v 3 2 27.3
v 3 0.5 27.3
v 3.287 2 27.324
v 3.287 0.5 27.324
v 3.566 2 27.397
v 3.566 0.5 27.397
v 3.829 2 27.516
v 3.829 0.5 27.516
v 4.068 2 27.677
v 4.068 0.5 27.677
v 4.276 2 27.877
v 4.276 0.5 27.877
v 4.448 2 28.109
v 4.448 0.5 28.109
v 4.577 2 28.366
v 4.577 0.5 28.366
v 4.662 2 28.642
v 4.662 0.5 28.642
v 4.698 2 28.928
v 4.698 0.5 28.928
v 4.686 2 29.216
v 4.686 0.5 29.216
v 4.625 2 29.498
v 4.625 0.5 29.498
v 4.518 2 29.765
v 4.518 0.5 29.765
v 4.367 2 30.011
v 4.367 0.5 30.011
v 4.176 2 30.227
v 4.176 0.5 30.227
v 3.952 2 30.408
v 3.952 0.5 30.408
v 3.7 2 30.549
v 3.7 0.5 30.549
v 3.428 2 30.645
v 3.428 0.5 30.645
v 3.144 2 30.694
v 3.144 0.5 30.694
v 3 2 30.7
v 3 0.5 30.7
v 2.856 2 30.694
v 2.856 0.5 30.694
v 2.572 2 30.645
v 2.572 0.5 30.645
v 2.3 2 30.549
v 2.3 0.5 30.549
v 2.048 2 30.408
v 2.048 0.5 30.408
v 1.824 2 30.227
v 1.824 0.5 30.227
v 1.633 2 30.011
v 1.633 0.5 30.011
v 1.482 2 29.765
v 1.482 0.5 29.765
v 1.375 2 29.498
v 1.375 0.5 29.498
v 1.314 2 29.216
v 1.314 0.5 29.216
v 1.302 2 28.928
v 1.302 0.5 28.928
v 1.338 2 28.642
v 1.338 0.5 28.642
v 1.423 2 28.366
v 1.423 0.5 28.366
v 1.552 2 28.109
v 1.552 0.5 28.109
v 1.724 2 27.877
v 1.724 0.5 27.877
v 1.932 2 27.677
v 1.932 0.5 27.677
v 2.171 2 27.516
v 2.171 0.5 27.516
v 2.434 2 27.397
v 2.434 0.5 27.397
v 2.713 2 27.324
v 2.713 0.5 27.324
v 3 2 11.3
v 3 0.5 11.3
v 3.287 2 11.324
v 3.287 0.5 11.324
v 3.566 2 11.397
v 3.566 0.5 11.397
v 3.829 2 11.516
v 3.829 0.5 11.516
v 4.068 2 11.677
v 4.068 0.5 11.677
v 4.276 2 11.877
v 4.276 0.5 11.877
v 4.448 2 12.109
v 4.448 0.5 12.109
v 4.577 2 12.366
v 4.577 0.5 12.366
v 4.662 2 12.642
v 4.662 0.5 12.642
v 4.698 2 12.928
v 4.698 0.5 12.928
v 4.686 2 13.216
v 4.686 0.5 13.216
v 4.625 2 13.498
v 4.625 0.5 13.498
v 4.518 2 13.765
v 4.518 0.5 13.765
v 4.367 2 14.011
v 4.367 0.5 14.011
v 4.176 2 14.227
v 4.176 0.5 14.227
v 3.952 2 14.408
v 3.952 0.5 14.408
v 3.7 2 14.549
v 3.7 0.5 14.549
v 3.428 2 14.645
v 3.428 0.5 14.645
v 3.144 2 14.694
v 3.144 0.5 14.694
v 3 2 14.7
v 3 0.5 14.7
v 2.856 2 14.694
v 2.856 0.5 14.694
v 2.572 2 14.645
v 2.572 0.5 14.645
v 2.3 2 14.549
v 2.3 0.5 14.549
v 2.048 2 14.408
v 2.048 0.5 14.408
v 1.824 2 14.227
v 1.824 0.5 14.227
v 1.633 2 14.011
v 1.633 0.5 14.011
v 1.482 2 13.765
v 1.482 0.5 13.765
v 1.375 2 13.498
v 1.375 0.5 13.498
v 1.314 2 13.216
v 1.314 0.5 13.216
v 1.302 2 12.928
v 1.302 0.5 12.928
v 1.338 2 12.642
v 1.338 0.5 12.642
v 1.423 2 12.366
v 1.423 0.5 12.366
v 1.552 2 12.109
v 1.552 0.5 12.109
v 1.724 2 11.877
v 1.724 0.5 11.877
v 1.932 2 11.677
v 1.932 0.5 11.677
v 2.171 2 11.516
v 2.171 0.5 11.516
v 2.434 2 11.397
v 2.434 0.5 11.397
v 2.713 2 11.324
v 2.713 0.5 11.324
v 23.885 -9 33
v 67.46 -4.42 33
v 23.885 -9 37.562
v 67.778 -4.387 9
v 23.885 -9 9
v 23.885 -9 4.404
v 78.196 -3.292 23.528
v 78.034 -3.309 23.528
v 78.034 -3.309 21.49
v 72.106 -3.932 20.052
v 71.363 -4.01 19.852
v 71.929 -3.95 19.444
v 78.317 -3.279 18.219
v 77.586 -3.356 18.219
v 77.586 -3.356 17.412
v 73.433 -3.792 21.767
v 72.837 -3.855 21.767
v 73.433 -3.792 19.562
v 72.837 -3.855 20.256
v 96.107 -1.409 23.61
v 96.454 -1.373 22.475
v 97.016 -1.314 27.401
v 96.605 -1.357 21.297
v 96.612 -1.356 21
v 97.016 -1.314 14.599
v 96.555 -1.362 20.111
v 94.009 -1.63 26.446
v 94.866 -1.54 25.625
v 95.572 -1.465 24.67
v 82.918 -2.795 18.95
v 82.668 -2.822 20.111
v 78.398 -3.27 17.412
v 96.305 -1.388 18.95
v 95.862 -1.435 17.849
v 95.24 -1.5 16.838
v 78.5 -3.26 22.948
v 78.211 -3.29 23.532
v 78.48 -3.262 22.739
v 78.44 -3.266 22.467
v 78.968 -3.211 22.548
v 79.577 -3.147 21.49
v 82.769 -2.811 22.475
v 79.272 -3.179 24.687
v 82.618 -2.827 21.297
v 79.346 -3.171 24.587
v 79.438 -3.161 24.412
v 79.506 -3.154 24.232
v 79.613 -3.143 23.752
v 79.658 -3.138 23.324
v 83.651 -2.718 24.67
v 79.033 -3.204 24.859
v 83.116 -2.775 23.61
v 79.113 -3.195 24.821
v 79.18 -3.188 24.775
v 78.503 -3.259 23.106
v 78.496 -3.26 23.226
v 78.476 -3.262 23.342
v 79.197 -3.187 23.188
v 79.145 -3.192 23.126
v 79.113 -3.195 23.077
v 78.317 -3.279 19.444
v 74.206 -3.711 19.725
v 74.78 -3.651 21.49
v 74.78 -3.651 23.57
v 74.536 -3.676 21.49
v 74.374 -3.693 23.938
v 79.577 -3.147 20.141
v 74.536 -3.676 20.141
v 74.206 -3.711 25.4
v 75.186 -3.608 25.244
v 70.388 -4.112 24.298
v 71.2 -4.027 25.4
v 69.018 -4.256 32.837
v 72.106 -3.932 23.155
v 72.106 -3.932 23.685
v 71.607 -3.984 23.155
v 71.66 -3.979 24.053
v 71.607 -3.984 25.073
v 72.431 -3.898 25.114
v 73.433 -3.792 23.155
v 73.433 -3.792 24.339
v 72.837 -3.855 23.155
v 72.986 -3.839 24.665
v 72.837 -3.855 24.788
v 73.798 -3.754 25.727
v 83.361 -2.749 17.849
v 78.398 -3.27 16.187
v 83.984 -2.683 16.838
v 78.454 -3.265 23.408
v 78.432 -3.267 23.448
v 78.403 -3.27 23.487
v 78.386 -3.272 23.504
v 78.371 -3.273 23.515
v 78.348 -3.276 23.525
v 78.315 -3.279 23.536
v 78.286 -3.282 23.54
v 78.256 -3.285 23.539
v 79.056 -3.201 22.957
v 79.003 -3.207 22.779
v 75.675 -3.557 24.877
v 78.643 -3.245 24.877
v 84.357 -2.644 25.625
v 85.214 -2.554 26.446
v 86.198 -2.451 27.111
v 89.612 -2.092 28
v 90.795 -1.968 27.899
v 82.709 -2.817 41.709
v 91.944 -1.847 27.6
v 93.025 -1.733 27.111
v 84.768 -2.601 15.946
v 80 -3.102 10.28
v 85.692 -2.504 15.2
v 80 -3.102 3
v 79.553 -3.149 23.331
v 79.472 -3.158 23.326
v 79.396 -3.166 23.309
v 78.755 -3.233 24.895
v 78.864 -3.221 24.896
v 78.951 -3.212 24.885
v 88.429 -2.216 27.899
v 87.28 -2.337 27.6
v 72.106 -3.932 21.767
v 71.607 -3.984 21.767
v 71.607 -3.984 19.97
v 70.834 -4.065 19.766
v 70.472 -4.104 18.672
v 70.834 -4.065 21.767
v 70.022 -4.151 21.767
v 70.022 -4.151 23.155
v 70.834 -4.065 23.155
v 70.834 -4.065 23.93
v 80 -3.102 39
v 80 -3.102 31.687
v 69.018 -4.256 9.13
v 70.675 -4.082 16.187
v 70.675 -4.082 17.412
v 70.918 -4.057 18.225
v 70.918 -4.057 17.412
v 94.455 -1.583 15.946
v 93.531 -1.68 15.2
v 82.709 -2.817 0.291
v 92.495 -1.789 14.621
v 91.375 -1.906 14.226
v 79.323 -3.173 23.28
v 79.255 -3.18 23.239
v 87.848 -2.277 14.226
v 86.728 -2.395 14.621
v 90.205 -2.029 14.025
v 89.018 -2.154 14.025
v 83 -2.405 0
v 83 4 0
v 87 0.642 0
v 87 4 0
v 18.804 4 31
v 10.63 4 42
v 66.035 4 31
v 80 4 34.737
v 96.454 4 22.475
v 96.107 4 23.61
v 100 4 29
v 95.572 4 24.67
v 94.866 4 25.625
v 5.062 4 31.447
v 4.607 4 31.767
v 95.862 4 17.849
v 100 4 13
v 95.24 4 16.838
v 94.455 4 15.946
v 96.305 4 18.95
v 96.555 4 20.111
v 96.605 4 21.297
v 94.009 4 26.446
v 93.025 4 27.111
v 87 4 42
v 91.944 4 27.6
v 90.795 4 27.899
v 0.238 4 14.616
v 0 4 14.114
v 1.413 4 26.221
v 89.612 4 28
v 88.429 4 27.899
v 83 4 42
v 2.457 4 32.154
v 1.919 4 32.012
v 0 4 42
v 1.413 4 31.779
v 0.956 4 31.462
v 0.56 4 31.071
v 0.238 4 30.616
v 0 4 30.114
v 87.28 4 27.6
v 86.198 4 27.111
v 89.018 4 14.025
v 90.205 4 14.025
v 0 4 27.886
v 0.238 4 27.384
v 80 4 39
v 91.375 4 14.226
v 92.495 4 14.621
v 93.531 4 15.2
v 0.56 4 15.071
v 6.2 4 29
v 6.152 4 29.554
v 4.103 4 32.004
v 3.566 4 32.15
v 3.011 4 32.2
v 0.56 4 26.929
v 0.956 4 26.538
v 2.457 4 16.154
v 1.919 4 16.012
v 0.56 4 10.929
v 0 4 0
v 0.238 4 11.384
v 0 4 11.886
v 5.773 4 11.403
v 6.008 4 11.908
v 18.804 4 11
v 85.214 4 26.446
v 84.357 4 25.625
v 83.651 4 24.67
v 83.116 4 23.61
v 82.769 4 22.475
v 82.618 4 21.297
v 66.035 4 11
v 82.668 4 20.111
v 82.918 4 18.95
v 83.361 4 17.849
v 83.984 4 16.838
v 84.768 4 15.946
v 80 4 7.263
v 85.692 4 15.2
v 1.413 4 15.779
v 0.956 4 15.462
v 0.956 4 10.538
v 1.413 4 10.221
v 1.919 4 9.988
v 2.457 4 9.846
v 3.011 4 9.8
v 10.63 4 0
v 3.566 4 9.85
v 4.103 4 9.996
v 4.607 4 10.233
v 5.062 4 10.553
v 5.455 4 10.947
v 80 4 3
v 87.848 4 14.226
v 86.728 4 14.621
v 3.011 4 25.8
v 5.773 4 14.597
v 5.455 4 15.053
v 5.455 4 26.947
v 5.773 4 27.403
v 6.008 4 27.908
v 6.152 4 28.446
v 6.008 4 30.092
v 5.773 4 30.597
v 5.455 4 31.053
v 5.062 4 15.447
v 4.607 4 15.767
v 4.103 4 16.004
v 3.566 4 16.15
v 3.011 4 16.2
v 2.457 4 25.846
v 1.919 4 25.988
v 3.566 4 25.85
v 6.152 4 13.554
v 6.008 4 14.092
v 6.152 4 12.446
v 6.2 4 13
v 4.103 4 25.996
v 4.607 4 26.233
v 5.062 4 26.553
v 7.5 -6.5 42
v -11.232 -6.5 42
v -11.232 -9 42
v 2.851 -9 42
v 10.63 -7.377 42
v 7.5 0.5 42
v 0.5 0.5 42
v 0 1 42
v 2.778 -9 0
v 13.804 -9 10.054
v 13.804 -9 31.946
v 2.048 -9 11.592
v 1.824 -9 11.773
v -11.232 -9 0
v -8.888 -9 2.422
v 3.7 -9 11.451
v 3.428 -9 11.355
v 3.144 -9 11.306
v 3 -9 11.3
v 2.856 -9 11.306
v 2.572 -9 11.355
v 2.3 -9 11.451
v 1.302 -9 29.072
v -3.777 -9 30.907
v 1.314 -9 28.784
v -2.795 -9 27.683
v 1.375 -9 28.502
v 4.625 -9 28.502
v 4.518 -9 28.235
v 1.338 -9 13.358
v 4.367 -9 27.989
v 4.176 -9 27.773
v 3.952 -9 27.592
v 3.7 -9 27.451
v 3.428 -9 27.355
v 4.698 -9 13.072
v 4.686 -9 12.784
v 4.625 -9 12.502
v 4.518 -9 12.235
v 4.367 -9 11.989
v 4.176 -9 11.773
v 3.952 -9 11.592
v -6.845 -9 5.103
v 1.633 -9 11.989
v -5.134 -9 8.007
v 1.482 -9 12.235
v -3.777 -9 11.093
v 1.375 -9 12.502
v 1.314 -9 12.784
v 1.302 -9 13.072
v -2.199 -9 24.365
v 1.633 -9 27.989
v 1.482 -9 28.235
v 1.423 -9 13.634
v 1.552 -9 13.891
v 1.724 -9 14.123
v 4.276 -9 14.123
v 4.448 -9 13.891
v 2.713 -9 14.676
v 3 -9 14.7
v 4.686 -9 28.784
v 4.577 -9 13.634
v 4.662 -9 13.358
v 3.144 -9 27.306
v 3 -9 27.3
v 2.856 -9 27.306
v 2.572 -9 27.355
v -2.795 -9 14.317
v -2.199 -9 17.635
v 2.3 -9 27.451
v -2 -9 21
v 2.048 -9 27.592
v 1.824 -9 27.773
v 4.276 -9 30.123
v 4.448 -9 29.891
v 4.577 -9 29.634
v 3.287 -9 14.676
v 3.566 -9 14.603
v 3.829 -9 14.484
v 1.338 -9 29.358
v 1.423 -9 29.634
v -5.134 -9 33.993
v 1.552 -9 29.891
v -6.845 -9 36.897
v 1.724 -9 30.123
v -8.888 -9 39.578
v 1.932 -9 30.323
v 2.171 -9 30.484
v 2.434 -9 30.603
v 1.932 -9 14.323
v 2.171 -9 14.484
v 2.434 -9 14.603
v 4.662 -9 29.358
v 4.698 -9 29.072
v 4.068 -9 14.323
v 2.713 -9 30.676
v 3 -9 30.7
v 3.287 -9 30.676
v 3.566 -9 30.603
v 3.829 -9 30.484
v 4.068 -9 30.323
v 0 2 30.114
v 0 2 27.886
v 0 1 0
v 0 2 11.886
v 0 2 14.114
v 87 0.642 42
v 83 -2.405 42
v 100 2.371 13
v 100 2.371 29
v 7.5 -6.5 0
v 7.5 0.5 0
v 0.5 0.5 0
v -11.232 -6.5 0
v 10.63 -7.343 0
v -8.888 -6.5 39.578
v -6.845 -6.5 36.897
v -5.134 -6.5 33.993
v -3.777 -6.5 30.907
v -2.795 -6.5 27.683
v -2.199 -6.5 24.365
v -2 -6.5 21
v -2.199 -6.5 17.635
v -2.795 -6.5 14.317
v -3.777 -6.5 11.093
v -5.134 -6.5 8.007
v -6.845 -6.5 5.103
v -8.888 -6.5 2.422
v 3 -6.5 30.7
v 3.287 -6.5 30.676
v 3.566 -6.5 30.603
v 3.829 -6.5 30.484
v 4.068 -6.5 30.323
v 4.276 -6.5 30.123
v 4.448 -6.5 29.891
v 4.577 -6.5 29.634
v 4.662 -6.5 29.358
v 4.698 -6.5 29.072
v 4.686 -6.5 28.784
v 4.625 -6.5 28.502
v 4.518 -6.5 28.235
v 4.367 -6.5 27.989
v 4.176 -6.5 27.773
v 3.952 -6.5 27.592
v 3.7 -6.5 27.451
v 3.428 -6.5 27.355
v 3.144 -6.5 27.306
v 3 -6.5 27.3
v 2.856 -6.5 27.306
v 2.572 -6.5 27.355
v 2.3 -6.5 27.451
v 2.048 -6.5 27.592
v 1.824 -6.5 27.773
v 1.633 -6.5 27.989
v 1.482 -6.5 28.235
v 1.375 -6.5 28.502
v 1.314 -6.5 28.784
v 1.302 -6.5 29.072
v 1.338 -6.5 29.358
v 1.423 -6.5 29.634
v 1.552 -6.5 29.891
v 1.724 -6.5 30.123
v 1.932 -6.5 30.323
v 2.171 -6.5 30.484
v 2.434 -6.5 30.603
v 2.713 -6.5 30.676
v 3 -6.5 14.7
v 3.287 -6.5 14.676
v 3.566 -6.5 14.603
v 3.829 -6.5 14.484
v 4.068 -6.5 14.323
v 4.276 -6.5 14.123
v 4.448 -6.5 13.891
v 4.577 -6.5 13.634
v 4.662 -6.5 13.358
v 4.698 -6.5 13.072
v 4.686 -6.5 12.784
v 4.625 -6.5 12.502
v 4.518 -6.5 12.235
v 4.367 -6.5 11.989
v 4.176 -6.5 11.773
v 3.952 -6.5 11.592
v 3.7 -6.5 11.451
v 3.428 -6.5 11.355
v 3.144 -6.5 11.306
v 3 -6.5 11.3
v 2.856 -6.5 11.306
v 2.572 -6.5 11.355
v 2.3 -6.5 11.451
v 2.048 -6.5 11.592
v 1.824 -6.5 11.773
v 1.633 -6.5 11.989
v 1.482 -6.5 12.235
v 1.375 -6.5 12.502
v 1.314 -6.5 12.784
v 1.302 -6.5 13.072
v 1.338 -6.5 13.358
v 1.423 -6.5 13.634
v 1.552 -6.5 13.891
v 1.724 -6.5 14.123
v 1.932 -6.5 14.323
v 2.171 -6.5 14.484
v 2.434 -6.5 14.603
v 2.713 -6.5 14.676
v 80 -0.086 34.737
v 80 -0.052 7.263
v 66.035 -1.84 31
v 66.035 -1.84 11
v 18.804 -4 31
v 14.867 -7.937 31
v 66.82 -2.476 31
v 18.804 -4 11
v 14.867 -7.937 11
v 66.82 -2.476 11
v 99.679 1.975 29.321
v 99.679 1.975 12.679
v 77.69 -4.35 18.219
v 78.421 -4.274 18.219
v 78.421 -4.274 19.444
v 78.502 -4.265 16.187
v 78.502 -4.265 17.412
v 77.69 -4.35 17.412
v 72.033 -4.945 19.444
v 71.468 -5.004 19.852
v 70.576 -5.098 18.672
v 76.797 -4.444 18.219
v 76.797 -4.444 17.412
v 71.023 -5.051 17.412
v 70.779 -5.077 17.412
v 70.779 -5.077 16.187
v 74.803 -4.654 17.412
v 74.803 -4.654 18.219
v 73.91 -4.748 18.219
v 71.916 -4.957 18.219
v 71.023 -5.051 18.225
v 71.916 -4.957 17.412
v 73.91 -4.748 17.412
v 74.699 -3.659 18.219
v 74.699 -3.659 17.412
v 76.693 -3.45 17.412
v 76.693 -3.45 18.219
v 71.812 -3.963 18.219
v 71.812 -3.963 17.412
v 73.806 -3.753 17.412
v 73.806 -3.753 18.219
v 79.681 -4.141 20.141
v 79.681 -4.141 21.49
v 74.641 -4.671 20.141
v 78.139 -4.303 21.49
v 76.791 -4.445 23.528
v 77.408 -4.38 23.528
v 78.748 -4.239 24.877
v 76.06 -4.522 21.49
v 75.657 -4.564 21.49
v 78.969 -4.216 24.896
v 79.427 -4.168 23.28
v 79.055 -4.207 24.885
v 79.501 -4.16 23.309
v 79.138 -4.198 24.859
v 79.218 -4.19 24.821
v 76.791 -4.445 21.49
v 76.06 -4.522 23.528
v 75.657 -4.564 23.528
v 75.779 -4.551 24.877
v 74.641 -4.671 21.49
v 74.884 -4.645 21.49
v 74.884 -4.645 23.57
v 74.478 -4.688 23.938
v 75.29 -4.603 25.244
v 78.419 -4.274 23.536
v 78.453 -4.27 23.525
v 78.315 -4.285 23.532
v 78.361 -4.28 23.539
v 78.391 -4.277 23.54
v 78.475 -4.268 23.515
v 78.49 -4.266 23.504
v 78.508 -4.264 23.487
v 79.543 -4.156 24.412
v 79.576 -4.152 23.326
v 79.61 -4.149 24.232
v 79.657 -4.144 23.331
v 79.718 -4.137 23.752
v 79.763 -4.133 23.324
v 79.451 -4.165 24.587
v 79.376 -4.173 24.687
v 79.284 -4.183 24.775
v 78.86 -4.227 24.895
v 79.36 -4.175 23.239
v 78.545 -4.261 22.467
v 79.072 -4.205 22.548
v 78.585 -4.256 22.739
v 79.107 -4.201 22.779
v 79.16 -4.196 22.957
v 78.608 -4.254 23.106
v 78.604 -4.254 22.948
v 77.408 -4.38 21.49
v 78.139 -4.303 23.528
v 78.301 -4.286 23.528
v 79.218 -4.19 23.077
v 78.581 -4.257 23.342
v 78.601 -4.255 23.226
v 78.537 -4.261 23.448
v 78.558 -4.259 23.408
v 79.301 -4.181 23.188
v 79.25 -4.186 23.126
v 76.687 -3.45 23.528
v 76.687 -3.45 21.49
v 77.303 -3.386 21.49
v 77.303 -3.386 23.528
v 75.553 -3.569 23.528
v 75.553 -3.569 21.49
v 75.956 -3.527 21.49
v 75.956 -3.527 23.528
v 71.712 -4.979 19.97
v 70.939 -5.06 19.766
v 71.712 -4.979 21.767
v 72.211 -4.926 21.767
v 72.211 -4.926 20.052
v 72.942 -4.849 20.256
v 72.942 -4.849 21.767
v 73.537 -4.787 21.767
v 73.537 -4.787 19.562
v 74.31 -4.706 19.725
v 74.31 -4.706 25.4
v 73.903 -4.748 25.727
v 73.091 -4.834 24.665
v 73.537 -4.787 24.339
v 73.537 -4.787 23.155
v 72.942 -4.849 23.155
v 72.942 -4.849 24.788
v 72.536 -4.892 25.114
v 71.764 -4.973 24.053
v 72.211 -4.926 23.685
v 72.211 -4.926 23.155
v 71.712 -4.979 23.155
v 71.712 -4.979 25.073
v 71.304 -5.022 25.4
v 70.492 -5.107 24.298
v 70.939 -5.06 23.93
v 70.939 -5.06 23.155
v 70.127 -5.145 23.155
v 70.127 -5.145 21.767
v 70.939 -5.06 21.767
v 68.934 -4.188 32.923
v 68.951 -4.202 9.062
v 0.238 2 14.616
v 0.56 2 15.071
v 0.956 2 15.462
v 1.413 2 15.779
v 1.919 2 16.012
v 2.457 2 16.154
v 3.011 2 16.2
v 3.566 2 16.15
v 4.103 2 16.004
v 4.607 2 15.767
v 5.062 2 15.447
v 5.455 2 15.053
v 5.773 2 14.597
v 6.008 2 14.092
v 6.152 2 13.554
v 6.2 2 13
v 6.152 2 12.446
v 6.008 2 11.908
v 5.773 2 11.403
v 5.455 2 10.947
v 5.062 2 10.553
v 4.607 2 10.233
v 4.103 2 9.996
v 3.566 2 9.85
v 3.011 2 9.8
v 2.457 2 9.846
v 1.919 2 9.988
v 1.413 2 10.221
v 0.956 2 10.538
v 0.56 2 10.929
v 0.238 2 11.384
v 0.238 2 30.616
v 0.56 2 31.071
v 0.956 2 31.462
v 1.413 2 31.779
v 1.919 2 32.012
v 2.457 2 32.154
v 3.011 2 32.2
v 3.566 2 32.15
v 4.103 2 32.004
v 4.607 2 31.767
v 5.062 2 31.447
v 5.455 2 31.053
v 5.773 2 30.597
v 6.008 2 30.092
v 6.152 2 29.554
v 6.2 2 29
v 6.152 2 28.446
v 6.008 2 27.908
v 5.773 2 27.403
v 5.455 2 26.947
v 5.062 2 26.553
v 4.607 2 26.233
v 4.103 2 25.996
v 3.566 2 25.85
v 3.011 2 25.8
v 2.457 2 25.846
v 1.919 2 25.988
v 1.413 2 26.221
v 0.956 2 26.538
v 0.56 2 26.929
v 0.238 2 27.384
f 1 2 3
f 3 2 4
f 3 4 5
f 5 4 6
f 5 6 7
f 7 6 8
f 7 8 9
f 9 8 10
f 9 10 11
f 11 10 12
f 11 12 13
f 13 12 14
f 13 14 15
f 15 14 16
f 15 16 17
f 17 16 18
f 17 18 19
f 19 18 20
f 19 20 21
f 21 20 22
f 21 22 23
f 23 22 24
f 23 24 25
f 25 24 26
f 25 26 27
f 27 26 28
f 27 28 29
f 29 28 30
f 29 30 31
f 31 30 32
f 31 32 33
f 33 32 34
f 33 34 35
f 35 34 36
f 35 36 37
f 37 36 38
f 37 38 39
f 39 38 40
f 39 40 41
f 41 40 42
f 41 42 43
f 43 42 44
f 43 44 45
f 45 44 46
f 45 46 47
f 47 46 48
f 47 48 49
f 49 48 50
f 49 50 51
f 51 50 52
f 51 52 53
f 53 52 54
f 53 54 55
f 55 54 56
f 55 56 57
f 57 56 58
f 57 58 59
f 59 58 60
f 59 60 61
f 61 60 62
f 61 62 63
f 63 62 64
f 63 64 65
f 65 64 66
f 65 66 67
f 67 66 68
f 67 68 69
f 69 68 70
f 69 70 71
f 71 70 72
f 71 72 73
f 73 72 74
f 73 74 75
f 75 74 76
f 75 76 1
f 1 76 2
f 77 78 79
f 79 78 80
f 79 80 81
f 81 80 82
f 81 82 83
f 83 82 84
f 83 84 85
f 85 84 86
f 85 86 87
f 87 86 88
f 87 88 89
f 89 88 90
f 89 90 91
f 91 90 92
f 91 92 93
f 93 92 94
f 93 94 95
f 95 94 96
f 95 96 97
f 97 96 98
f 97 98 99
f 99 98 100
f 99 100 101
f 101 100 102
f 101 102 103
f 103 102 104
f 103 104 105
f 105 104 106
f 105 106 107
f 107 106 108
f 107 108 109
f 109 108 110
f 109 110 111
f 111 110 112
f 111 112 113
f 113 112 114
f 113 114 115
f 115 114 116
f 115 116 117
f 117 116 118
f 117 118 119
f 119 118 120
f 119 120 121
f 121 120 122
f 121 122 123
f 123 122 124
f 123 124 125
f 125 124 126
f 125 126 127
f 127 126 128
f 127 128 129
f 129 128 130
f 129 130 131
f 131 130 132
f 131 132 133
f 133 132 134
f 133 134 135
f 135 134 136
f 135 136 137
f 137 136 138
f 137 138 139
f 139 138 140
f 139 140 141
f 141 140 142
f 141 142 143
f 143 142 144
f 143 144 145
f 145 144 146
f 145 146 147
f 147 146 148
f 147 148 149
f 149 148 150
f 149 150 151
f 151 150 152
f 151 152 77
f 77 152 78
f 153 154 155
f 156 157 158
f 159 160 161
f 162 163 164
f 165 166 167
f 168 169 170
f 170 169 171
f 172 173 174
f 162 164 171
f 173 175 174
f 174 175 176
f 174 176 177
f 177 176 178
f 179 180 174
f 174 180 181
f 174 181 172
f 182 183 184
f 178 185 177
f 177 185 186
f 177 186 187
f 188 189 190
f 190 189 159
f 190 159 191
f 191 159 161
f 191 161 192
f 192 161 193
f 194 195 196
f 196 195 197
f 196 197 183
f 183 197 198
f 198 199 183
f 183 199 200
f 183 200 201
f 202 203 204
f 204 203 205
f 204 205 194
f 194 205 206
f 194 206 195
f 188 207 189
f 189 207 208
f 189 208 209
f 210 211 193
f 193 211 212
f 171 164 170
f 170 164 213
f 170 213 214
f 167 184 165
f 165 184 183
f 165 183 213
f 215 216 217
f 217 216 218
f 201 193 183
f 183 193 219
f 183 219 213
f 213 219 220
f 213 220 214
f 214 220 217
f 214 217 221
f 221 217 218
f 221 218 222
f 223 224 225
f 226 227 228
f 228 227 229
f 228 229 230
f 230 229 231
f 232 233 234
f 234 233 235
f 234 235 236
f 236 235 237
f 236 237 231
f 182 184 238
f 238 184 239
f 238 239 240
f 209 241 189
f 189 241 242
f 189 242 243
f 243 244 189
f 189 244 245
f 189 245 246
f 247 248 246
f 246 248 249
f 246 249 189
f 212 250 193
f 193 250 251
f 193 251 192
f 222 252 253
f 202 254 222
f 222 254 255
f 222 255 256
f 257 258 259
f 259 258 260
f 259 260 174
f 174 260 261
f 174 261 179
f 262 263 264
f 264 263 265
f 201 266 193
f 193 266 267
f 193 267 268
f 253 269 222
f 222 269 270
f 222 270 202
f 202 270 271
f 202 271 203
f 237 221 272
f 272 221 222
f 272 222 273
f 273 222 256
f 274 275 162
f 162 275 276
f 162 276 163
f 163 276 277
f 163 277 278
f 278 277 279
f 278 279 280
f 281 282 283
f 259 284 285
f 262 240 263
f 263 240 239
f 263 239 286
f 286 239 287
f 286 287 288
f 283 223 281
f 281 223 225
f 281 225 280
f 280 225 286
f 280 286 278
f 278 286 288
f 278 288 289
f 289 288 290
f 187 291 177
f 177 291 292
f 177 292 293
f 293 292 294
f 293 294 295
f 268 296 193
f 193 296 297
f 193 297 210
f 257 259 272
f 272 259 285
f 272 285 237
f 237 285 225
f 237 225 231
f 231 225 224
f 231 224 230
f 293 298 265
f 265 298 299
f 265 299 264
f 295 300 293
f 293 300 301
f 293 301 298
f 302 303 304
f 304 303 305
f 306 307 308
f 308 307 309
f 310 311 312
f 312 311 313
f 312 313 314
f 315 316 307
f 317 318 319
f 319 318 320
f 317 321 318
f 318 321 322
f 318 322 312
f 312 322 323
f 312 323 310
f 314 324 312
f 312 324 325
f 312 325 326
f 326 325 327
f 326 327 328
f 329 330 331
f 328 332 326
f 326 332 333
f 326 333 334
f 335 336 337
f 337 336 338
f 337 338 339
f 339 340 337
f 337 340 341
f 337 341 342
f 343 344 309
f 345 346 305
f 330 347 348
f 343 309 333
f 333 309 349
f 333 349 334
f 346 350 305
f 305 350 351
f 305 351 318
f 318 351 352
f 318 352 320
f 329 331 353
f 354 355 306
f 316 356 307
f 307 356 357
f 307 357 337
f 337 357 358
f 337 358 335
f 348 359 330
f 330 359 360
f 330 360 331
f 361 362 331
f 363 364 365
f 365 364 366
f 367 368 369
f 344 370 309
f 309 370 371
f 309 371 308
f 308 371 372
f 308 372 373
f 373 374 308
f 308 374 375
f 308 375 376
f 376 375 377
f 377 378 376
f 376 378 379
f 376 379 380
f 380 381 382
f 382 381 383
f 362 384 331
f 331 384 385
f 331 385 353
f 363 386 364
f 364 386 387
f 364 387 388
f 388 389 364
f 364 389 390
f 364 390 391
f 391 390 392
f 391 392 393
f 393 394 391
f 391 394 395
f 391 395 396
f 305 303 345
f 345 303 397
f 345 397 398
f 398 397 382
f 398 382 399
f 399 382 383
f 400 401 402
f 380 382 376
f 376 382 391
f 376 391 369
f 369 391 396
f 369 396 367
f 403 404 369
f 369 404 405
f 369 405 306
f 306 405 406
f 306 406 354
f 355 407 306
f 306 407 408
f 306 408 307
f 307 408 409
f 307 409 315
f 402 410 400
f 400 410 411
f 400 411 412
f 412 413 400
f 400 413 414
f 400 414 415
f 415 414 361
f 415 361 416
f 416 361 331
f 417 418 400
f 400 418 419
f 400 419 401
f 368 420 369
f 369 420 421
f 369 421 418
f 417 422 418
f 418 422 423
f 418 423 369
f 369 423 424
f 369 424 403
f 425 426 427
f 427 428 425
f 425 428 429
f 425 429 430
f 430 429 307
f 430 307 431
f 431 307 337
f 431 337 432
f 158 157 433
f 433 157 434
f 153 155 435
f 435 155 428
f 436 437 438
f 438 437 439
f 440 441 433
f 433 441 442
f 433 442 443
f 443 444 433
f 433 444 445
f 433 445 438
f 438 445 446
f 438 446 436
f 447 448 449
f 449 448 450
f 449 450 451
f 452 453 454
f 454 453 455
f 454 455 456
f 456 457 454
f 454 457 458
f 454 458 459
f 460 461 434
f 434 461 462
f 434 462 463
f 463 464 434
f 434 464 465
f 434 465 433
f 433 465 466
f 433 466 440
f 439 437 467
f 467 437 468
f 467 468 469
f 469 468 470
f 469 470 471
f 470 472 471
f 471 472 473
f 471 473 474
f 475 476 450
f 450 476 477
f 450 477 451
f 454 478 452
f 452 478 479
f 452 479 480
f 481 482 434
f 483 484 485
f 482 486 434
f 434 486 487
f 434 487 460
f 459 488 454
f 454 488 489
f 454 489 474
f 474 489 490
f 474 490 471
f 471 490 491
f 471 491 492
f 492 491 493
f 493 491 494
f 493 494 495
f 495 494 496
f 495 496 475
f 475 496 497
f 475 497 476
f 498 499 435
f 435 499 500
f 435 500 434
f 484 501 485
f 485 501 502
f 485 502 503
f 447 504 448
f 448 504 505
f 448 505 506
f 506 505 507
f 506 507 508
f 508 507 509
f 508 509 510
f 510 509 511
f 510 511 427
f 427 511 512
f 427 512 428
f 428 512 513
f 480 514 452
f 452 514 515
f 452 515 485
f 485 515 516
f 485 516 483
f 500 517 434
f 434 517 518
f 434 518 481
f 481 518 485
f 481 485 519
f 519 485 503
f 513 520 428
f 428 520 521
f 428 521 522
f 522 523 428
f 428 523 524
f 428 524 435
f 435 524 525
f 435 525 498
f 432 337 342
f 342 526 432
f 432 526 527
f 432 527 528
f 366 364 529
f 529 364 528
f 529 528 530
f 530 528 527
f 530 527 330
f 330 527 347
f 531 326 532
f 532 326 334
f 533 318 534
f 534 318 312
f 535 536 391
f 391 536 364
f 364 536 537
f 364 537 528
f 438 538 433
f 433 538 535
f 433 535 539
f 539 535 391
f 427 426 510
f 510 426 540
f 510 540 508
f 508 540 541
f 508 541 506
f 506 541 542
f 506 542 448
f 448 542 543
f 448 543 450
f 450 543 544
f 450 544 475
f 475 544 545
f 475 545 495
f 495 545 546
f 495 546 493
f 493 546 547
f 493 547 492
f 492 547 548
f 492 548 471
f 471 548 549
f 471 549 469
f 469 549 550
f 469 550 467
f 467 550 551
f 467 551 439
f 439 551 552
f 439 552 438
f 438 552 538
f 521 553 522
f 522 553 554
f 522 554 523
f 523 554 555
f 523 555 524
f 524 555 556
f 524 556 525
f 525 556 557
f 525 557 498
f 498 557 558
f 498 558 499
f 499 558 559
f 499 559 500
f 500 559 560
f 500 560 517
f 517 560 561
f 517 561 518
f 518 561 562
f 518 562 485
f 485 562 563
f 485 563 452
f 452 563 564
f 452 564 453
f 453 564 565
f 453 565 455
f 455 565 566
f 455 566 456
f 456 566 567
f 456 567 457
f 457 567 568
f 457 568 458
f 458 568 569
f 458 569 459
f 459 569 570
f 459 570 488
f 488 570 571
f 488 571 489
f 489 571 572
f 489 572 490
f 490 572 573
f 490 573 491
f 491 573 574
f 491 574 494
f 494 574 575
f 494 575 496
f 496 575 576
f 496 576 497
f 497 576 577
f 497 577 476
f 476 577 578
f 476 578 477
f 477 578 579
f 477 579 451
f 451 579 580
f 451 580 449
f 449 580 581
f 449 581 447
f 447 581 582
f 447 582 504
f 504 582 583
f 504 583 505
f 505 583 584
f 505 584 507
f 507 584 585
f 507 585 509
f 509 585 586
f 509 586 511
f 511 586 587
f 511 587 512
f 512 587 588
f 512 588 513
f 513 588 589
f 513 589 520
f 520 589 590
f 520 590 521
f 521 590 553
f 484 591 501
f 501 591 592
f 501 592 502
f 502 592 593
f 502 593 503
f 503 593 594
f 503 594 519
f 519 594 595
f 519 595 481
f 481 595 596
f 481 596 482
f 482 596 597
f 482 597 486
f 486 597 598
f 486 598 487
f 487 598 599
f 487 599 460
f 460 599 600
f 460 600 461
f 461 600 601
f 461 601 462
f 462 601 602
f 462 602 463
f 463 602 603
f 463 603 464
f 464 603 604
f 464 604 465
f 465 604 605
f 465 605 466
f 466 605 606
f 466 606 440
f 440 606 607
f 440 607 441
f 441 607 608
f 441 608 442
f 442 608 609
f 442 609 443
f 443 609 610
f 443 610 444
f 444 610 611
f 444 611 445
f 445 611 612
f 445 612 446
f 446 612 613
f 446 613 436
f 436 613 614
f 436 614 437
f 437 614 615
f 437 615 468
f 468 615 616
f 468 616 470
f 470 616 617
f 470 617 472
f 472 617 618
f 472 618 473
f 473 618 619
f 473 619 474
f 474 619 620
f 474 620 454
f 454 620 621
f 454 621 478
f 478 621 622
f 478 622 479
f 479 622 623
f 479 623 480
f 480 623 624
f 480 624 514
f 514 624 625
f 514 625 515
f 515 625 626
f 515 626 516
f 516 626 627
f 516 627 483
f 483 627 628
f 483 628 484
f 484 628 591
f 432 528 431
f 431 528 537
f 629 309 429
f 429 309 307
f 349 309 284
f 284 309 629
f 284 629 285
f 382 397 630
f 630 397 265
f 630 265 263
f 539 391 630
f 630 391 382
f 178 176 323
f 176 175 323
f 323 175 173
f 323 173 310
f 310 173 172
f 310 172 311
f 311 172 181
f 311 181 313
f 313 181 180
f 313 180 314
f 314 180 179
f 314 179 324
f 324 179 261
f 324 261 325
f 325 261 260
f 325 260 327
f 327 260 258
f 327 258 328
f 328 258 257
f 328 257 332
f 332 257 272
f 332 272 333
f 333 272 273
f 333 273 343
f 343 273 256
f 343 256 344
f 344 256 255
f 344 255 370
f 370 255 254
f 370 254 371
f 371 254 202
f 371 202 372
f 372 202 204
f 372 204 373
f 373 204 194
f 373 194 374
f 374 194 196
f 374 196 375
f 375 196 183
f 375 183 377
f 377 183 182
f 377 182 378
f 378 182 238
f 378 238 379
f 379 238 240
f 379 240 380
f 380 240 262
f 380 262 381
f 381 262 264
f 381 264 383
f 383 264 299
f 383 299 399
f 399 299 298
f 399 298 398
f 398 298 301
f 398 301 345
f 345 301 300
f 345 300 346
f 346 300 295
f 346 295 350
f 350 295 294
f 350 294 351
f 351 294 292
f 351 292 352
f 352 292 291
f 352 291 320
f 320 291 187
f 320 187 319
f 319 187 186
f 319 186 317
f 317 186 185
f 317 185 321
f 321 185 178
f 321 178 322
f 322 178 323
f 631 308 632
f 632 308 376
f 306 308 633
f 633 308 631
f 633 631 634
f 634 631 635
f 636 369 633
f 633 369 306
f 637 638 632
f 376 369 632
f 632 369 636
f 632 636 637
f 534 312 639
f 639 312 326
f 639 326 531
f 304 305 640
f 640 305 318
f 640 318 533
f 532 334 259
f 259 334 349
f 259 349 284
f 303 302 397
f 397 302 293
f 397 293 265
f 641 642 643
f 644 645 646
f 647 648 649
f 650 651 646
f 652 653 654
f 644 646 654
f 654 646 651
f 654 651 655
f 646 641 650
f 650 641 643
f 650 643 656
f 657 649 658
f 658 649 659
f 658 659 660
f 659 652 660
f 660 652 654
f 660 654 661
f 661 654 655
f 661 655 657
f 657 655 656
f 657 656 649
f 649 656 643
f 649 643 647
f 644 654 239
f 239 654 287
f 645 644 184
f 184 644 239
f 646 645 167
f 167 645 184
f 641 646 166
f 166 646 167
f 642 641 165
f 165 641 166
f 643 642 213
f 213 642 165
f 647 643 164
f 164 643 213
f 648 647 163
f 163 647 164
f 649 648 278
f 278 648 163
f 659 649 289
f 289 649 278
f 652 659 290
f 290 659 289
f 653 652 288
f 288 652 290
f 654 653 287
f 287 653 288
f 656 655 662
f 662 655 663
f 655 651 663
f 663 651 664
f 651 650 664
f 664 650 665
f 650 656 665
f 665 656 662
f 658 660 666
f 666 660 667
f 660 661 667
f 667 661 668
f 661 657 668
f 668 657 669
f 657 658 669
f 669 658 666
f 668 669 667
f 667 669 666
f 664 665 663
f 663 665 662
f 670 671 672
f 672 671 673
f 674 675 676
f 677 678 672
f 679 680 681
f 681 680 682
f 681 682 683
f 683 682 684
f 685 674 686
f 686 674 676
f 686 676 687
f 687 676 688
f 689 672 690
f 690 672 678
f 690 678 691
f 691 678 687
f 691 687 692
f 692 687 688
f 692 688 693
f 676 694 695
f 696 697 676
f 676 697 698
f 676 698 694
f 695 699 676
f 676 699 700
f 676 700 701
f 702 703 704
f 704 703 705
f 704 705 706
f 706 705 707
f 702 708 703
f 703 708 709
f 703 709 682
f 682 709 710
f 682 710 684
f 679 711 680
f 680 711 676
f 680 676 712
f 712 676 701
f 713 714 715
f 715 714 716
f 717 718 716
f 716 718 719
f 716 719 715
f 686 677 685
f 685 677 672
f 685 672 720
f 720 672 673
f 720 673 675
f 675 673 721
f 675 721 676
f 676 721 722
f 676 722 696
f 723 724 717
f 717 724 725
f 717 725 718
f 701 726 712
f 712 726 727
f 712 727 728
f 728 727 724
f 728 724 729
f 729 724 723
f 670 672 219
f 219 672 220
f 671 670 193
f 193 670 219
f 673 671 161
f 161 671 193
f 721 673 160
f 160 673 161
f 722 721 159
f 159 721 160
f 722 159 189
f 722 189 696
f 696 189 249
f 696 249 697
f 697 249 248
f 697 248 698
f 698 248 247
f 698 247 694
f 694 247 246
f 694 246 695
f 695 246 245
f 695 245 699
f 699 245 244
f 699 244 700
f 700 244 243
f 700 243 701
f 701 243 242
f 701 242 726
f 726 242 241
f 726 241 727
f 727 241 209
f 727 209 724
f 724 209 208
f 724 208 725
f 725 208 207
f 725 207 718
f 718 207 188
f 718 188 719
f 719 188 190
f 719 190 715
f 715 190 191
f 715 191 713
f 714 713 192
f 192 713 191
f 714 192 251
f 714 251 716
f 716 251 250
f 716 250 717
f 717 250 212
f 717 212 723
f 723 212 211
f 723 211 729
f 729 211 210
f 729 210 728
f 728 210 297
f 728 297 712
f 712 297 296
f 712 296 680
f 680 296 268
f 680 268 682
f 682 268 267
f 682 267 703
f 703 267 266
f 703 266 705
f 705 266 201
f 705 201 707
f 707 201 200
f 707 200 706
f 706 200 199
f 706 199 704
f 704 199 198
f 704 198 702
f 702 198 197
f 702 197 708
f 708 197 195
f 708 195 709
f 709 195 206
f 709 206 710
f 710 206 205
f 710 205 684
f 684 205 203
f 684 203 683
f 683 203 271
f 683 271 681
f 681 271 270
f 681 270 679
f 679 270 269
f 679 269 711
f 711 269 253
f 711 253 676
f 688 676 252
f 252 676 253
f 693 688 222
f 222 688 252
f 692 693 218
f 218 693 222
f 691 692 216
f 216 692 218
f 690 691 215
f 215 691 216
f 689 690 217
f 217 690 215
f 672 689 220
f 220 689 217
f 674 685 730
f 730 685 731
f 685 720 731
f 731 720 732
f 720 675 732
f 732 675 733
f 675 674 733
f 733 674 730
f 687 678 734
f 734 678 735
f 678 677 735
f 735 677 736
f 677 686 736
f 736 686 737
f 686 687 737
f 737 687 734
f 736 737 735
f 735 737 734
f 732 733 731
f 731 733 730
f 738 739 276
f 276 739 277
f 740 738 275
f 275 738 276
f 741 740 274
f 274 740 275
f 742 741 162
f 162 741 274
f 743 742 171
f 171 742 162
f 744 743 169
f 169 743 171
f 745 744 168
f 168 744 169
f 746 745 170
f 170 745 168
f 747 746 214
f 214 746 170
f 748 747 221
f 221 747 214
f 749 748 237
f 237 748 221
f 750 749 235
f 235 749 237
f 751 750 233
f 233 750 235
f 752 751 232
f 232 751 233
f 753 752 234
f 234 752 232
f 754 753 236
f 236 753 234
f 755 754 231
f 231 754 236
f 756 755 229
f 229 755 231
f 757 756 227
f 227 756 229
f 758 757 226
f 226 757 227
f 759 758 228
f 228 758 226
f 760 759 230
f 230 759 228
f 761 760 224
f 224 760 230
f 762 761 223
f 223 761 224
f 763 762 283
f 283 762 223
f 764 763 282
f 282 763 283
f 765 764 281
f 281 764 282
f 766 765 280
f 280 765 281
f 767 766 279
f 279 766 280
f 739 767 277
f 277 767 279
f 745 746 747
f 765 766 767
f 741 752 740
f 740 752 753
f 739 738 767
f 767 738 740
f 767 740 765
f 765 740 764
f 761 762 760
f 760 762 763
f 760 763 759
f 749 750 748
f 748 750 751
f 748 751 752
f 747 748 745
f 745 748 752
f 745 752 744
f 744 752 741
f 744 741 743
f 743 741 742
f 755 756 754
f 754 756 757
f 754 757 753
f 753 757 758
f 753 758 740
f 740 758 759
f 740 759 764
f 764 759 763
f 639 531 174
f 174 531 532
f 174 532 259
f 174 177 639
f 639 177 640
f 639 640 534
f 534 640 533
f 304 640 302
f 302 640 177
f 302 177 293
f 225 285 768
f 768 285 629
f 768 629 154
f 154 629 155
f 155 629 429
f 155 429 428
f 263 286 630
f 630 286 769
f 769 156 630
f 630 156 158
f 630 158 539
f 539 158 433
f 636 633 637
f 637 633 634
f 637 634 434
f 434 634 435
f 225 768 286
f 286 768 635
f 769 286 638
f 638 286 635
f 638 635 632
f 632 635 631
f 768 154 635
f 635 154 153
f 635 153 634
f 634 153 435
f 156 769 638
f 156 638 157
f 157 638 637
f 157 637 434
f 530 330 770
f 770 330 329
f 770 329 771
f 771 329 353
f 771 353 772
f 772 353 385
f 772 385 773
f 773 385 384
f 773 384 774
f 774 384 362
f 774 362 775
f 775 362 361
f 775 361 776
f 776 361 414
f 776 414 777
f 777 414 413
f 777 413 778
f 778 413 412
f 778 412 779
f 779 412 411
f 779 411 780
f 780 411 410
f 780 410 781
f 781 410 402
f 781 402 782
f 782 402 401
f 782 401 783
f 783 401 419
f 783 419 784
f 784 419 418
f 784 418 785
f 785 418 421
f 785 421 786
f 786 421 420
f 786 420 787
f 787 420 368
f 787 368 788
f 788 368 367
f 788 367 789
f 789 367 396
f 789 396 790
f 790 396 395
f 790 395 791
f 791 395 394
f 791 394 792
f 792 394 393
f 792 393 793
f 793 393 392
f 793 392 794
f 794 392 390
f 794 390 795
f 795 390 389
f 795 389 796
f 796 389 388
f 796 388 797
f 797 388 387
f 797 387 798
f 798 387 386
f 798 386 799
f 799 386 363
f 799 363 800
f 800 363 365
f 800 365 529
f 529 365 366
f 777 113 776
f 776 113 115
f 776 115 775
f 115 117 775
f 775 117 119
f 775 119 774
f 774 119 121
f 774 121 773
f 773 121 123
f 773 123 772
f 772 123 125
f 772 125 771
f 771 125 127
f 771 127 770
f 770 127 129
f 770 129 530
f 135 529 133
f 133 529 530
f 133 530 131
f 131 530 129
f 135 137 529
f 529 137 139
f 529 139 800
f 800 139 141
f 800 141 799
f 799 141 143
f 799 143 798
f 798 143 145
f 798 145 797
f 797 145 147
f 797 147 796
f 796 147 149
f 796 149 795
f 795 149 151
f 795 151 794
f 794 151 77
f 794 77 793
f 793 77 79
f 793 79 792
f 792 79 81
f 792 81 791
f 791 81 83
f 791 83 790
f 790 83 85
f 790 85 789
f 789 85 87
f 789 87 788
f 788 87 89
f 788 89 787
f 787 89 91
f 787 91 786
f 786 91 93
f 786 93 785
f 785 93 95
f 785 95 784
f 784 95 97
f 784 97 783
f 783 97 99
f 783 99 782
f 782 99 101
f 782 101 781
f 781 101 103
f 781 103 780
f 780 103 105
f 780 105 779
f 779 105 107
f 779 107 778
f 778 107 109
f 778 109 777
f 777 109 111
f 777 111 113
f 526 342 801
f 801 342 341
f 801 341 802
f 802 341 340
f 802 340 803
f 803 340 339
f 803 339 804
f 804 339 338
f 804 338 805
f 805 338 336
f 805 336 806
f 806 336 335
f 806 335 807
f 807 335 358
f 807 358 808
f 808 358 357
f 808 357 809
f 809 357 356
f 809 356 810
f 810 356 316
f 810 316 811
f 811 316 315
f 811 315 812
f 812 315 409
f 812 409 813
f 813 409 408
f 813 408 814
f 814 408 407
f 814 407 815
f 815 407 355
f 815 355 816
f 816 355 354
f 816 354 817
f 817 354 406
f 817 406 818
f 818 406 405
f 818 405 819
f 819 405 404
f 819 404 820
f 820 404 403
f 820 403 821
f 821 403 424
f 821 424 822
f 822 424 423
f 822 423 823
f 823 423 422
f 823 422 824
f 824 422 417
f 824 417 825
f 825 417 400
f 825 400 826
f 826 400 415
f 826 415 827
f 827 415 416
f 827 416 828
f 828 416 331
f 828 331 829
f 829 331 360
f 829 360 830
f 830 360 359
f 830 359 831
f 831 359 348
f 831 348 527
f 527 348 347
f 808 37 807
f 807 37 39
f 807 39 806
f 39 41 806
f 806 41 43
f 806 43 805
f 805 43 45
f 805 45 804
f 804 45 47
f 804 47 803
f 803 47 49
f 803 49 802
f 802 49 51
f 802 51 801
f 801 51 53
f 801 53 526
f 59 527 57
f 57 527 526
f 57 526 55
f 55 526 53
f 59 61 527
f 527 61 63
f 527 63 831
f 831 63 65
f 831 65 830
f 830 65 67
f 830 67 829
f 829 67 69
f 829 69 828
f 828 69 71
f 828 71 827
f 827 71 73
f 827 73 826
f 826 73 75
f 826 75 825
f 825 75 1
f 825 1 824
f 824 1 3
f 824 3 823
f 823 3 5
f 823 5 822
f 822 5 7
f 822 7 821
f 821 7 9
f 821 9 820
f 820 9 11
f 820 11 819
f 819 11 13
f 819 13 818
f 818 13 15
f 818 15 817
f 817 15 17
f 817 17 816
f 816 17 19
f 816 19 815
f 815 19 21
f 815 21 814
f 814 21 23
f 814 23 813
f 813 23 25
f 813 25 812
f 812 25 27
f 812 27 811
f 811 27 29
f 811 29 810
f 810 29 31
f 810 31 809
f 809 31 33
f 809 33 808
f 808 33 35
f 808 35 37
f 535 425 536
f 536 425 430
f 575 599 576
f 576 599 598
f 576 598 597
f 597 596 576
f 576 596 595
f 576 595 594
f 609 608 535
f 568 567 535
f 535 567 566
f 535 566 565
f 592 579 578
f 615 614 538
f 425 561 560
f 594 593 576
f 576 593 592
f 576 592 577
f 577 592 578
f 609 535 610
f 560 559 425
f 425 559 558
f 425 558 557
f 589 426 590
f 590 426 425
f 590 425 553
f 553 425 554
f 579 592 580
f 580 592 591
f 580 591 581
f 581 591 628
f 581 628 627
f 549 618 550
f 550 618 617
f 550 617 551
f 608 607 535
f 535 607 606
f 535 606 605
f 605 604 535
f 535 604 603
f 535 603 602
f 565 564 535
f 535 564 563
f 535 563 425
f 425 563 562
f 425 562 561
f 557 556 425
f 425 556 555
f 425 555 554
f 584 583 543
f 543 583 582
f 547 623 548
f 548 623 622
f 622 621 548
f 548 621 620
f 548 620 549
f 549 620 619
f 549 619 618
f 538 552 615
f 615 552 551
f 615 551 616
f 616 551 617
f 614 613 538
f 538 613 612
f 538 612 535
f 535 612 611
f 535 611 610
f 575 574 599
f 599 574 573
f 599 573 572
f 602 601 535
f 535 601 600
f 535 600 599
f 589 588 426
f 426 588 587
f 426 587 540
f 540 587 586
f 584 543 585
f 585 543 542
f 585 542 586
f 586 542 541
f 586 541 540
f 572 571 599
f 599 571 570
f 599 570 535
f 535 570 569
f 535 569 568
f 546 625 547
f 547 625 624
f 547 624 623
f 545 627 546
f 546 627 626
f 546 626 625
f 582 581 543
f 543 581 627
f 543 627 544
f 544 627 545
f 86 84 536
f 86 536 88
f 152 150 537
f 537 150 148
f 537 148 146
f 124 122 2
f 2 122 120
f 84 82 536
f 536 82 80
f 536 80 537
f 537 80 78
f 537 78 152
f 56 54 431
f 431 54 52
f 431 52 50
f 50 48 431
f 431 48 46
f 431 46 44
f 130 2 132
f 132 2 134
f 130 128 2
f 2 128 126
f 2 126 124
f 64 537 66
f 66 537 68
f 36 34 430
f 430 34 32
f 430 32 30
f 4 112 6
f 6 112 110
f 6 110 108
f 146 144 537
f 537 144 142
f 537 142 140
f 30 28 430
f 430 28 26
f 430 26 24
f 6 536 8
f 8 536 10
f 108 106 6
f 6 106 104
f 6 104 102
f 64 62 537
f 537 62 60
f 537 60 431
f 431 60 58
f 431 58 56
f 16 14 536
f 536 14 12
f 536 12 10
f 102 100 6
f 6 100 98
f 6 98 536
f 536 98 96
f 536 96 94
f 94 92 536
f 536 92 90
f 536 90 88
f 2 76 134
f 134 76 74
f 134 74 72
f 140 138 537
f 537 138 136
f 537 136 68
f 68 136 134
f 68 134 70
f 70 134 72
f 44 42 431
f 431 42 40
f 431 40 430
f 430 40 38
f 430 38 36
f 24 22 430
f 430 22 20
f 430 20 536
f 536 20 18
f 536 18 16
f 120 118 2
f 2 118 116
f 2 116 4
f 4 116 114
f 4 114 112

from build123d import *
from OCP.BRepFilletAPI import BRepFilletAPI_MakeChamfer

# Parameters (mm, degrees)
SKETCH_1_W          = 100
SKETCH_1_H          = 42
SKETCH_1_R          = 1.7
EXTRUDE_1_DEPTH     = 4
SKETCH_4_W          = 93
SKETCH_4_H          = 42
EXTRUDE_3_DEPTH     = 6
EXTRUDE_START       = 3
SKETCH_5_R          = 1.7
EXTRUDE_4_DEPTH     = 3
CHAMFER_1_SIZE      = 8
CHAMFER_1_SIZE2     = 76.114915634
CHAMFER_2_SIZE      = 1
SKETCH_13_W         = 47.230725809
SKETCH_13_H         = 10
SKETCH_13_R         = 7
CUT_EXTRUDE_4_DEPTH = 44
CHAMFER_6_SIZE      = 13
CHAMFER_7_SIZE      = 3
SKETCH_11_W         = 2.004930736
SKETCH_11_H         = 0.807415545
SKETCH_11_W_2       = 2.004930737
SKETCH_11_W_3       = 0.619925793
SKETCH_11_H_2       = 2.038195048
SKETCH_11_W_4       = 0.405219787
EXTRUDE_6_DEPTH     = 1
CHAMFER_8_SIZE      = 3
CHAMFER_8_SIZE2     = 3.249032056
CHAMFER_8_SIZE2_2   = 3.370811392
CHAMFER_9_SIZE      = 3
CHAMFER_9_SIZE2     = 3.033196678
CHAMFER_10_SIZE     = 5
CHAMFER_11_SIZE     = 3
CHAMFER_11_SIZE2    = 2.729629244
CHAMFER_12_SIZE     = 2
SKETCH_14_R         = 3.2
CUT_EXTRUDE_8_DEPTH = 2
CUT_EXTRUDE_9_DEPTH = 110


with BuildPart() as part:
    # 草图1 → 凸台-拉伸1 (new body)
    with BuildSketch(Plane(origin=(0, 0, 0), x_dir=(1, 0, 0), z_dir=(0, 1, 0))):
        with Locations((50, -21)):
            Rectangle(SKETCH_1_W, SKETCH_1_H)
        with Locations(Location((3, -29, 0), (0, 0, 270))):
            Circle(SKETCH_1_R, mode=Mode.SUBTRACT)
        with Locations(Location((3, -13, 0), (0, 0, 90))):
            Circle(SKETCH_1_R, mode=Mode.SUBTRACT)
    extrude(amount=EXTRUDE_1_DEPTH)

    # 草图4 → 凸台-拉伸3 (add)
    with BuildSketch(Plane.XZ):
        with Locations((53.5, 21)):
            Rectangle(SKETCH_4_W, SKETCH_4_H)
    extrude(amount=EXTRUDE_3_DEPTH)

    # 草图5 → 凸台-拉伸4 (add)
    with BuildSketch(Plane.XZ.offset(6).offset(EXTRUDE_START)):
        with BuildLine():
            Line((0, 42), (100, 42))
            Line((100, 42), (100, 0))
            Line((100, 0), (0, 0))
            Line((0, 0), (-11.232151132, 0))
            ThreePointArc((-11.232151132, 0), (-2, 21), (-11.232151132, 42))
            Line((-11.232151132, 42), (0, 42))
        make_face()
        with Locations(Location((3, 29, 0), (0, 0, 90))):
            Circle(SKETCH_5_R, mode=Mode.SUBTRACT)
        with Locations(Location((3, 13, 0), (0, 0, 270))):
            Circle(SKETCH_5_R, mode=Mode.SUBTRACT)
    extrude(amount=-EXTRUDE_4_DEPTH)

    # 倒角1
    chamfer_1_edges = [part.edges().sort_by_distance(p)[0] for p in [
        (100, -9, 21),
    ]]
    chamfer_1_side = [part.faces().sort_by_distance(p)[0] for p in [
        (100, -2.5, 21),
    ]]
    chamfer(chamfer_1_edges, length=CHAMFER_1_SIZE, length2=CHAMFER_1_SIZE2, reference=chamfer_1_side[0])

    # 倒角2
    chamfer_2_edges = [part.edges().sort_by_distance(p)[0] for p in [
        (0, 0, 21),
    ]]
    chamfer(chamfer_2_edges, length=CHAMFER_2_SIZE)

    # 草图13 → 切除-拉伸4 (cut)
    with BuildSketch(Plane(origin=(0, 4, 0), x_dir=(1, 0, 0), z_dir=(0, 1, 0))):
        Polygon((10.629734183, -42), (80, -42), (80, -34.736546255), align=None)
        with Locations((42.419369789, -26)):
            Rectangle(SKETCH_13_W, SKETCH_13_H)
        Polygon((80, -7.263453745), (80, 0), (10.629734183, 0), align=None)
        with Locations((42.419369789, -16)):
            Rectangle(SKETCH_13_W, SKETCH_13_H)
        with Locations(Location((89.611584168, -21, 0), (0, 0, 270))):
            Circle(SKETCH_13_R)
    extrude(amount=-CUT_EXTRUDE_4_DEPTH, mode=Mode.SUBTRACT)

    # 倒角6
    chamfer_6_edges = [part.edges().sort_by_distance(p)[0] for p in [
        (100, 1.5, 0),
        (100, 1.5, 42),
    ]]
    chamfer(chamfer_6_edges, length=CHAMFER_6_SIZE)

    # 倒角7
    chamfer_7_edges = [part.edges().sort_by_distance(p)[0] for p in [
        (80, 0.448957647, 42),
        (80, 0.448957647, 0),
    ]]
    chamfer(chamfer_7_edges, length=CHAMFER_7_SIZE)

    # 草图11 → 凸台-拉伸6 (add)
    # profile 1 of 3: a face of its own
    with BuildSketch(Plane(origin=(1.196575809, -11.384658341, 0), x_dir=(0.9945218953682733, 0.10452846326765426, 0), z_dir=(0.10452846326765428, -0.9945218953682734, 0))):
        Polygon((69.860880518, 16.187261812), (69.860880518, 17.411993258), (70.105826807, 17.411993258), (70.105826807, 18.22545686), (69.65675861, 18.671501028), (70.553382989, 19.852384064), (71.121900302, 19.444140249), (77.544936327, 19.444140249), (77.544936327, 18.219408803), (76.810097459, 18.219408803), (76.810097459, 17.411993258), (77.62658509, 17.411993258), (77.62658509, 16.187261812), align=None)
        with Locations((74.909495698, 17.815701031)):
            Rectangle(SKETCH_11_W, SKETCH_11_H, mode=Mode.SUBTRACT)
        with Locations((72.006428569, 17.815701031)):
            Rectangle(SKETCH_11_W_2, SKETCH_11_H, mode=Mode.SUBTRACT)
    # profile 2 of 3: a face of its own
    with BuildSketch(Plane(origin=(1.196575809, -11.384658341, 0), x_dir=(0.9945218953682733, 0.10452846326765426, 0), z_dir=(0.10452846326765428, -0.9945218953682734, 0))):
        with BuildLine():
            Line((73.743732804, 20.141178762), (73.743732804, 21.489895366))
            Line((73.743732804, 21.489895366), (73.988679093, 21.489895366))
            Line((73.988679093, 21.489895366), (73.988679093, 23.570426809))
            Line((73.988679093, 23.570426809), (73.580435278, 23.937846243))
            Line((73.580435278, 23.937846243), (74.396922908, 25.244226451))
            Line((74.396922908, 25.244226451), (74.8883275, 24.876807018))
            Line((74.8883275, 24.876807018), (77.873043393, 24.876807018))
            add(Edge.make_bspline(
                [(77.873043393, 24.876807018), (77.909195425, 24.884114021), (77.979030125, 24.898228922), (78.083535505, 24.898260892), (78.18247526, 24.888096269), (78.274375586, 24.857634965), (78.361174864, 24.815510666), (78.440062892, 24.754438601), (78.514651653, 24.680459701), (78.581581254, 24.589308152), (78.641153636, 24.483219793), (78.695783555, 24.362834367), (78.74420221, 24.227285764), (78.78536843, 24.075844921), (78.823948154, 23.909673827), (78.853080426, 23.727704353), (78.87757312, 23.53102708), (78.888168983, 23.394584904), (78.893652931, 23.323968506)],
                knots=[0, 0, 0, 0, 0.827263588, 1.598020928, 2.340253185, 3.053540043, 3.76312571, 4.499799397, 5.285166813, 6.119311175, 7.033042428, 8.016965305, 9.088859635, 10.265792637, 11.544263093, 12.923035739, 14.407500252, 16, 16, 16, 16], degree=3))
            add(Edge.make_bspline(
                [(78.893652931, 23.323968506), (78.845246059, 23.328323663), (78.753264032, 23.336599269), (78.620846423, 23.311971446), (78.505741453, 23.257011785), (78.407474701, 23.17222843), (78.32882796, 23.056565697), (78.267259898, 22.912798583), (78.222626533, 22.740439523), (78.20762963, 22.615095523), (78.199638445, 22.548305257)],
                knots=[0, 0, 0, 0, 0.974397038, 1.851534954, 2.672531398, 3.514004096, 4.431205496, 5.461919598, 6.647569389, 8, 8, 8, 8], degree=3))
            Line((78.199638445, 22.548305257), (77.668921485, 22.466656494))
            add(Edge.make_bspline(
                [(77.668921485, 22.466656494), (77.676599849, 22.514514334), (77.691289688, 22.606073427), (77.710604215, 22.73849245), (77.721281907, 22.861229398), (77.732590351, 22.973497898), (77.732180701, 23.075975967), (77.733151762, 23.168024765), (77.722536119, 23.249609583), (77.711807698, 23.321856538), (77.693885438, 23.383253279), (77.671409021, 23.435462621), (77.641955792, 23.475795943), (77.610544471, 23.510743362), (77.569530677, 23.529227283), (77.525069221, 23.54104806), (77.475191645, 23.540431553), (77.441487802, 23.532310259), (77.423975196, 23.528090414)],
                knots=[0, 0, 0, 0, 1.834201696, 3.509097869, 5.061374665, 6.496278519, 7.774185948, 8.937680646, 9.973858727, 10.883093303, 11.697811954, 12.389123654, 13.018759541, 13.585142942, 14.139519144, 14.689944872, 15.319291869, 16, 16, 16, 16], degree=3))
            Line((77.423975196, 23.528090414), (77.26067767, 23.528090414))
            Line((77.26067767, 23.528090414), (77.26067767, 21.489895366))
            Line((77.26067767, 21.489895366), (78.812004168, 21.489895366))
            Line((78.812004168, 21.489895366), (78.812004168, 20.141178762))
            Line((78.812004168, 20.141178762), (73.743732804, 20.141178762))
        make_face()
        with Locations((76.215875907, 22.50899289)):
            Rectangle(SKETCH_11_W_3, SKETCH_11_H_2, mode=Mode.SUBTRACT)
        with Locations((74.96846425, 22.50899289)):
            Rectangle(SKETCH_11_W_4, SKETCH_11_H_2, mode=Mode.SUBTRACT)
    # profile 3 of 3: a face of its own
    with BuildSketch(Plane(origin=(1.196575809, -11.384658341, 0), x_dir=(0.9945218953682733, 0.10452846326765426, 0), z_dir=(0.10452846326765428, -0.9945218953682734, 0))):
        Polygon((70.021154016, 19.766199258), (70.021154016, 21.766593952), (69.204666385, 21.766593952), (69.204666385, 23.154622924), (70.021154016, 23.154622924), (70.021154016, 23.930286172), (69.572085819, 24.297705606), (70.388573449, 25.399963907), (70.798329279, 25.073368855), (70.798329279, 23.154622924), (71.30031797, 23.154622924), (71.30031797, 23.685339883), (70.851249773, 24.052759317), (71.626913022, 25.114193236), (72.035156837, 24.787598184), (72.035156837, 23.154622924), (72.633914432, 23.154622924), (72.633914432, 24.338529987), (72.184846236, 24.665125039), (73.001333866, 25.726558959), (73.411089695, 25.399963907), (73.411089695, 19.725374877), (72.633914432, 19.562077351), (72.633914432, 21.766593952), (72.035156837, 21.766593952), (72.035156837, 20.256091836), (71.30031797, 20.051969929), (71.30031797, 21.766593952), (70.798329279, 21.766593952), (70.798329279, 19.970321166), align=None)
    extrude(amount=EXTRUDE_6_DEPTH)

    # 倒角8: one chamfer whose edges measure the first distance from different faces: ONE call of the kernel's chamfer builder (chamfer() names one face for all edges)
    chamfer_8_edges_1 = [part.edges().sort_by_distance(p)[0] for p in [
        (93.5, -1.683177529, 6.5),
    ]]
    chamfer_8_side_1 = [part.faces().sort_by_distance(p)[0] for p in [
        (93.239543948, 1.144723718, 6.239543948),
    ]]
    chamfer_8_edges_2 = [part.edges().sort_by_distance(p)[0] for p in [
        (93.5, -1.683177529, 35.5),
    ]]
    chamfer_8_side_2 = [part.faces().sort_by_distance(p)[0] for p in [
        (93.239543948, 1.144723718, 35.760456052),
    ]]
    chamfer_8_edges_3 = [part.edges().sort_by_distance(p)[0] for p in [
        (100, -1, 21),
    ]]
    chamfer_8_side_3 = [part.faces().sort_by_distance(p)[0] for p in [
        (85, -2.576563529, 41.126989093),
    ]]
    chamfer_8 = BRepFilletAPI_MakeChamfer(part.part.solid().wrapped)
    for e in chamfer_8_edges_1:
        chamfer_8.Add(CHAMFER_8_SIZE, CHAMFER_8_SIZE2, e.wrapped, chamfer_8_side_1[0].wrapped)  # the first distance lies on this face
    for e in chamfer_8_edges_2:
        chamfer_8.Add(CHAMFER_8_SIZE, CHAMFER_8_SIZE2, e.wrapped, chamfer_8_side_2[0].wrapped)  # the first distance lies on this face
    for e in chamfer_8_edges_3:
        chamfer_8.Add(CHAMFER_8_SIZE, CHAMFER_8_SIZE2_2, e.wrapped, chamfer_8_side_3[0].wrapped)  # the first distance lies on this face
    add(Compound.cast(chamfer_8.Shape()), mode=Mode.REPLACE)

    # 倒角9: one chamfer whose edges measure the first distance from different faces: ONE call of the kernel's chamfer builder (chamfer() names one face for all edges)
    chamfer_9_edges_1 = [part.edges().sort_by_distance(p)[0] for p in [
        (51.942542183, -6.051042353, 37.674318579),
    ]]
    chamfer_9_side_1 = [part.faces().sort_by_distance(p)[0] for p in [
        (41.723549869, -1.481040701, 38.744304071),
    ]]
    chamfer_9_edges_2 = [part.edges().sort_by_distance(p)[0] for p in [
        (51.942542183, -6.051042353, 4.325681421),
    ]]
    chamfer_9_side_2 = [part.faces().sort_by_distance(p)[0] for p in [
        (81.946304921, -2.897519815, 39.756028252),
    ]]
    chamfer_9 = BRepFilletAPI_MakeChamfer(part.part.solid().wrapped)
    for e in chamfer_9_edges_1:
        chamfer_9.Add(CHAMFER_9_SIZE, CHAMFER_9_SIZE2, e.wrapped, chamfer_9_side_1[0].wrapped)  # the first distance lies on this face
    for e in chamfer_9_edges_2:
        chamfer_9.Add(CHAMFER_9_SIZE, CHAMFER_9_SIZE2, e.wrapped, chamfer_9_side_2[0].wrapped)  # the first distance lies on this face
    add(Compound.cast(chamfer_9.Shape()), mode=Mode.REPLACE)

    # 倒角10
    chamfer_10_edges = [part.edges().sort_by_distance(p)[0] for p in [
        (18.804006885, -9, 21),
    ]]
    chamfer(chamfer_10_edges, length=CHAMFER_10_SIZE)

    # 倒角11
    chamfer_11_edges = [part.edges().sort_by_distance(p)[0] for p in [
        (66.034732694, -4.569893446, 21),
    ]]
    chamfer_11_side = [part.faces().sort_by_distance(p)[0] for p in [
        (24.724422242, -8.911782034, 34.281246688),
    ]]
    chamfer(chamfer_11_edges, length=CHAMFER_11_SIZE, length2=CHAMFER_11_SIZE2, reference=chamfer_11_side[0])

    # 倒角12
    # the kernel refuses this chamfer: 2 mm, written as the material it takes off along each edge
    with BuildSketch(Plane(origin=(-1.690866029, -11.688140707, 31), x_dir=(-0.10452846326765075, 0.9945218953682736, 0), z_dir=(0.9945218953682737, 0.10452846326765075, 0))) as chamfer_12_piece_1_section:
        Polygon((CHAMFER_12_SIZE, 0), (0, CHAMFER_12_SIZE), (0, 0), align=None)
    chamfer_12_piece_1 = extrude(amount=76.24201623, mode=Mode.PRIVATE)
    chamfer_12_piece_1 = split(chamfer_12_piece_1, bisect_by=Plane(origin=(4.712500075, -18.091506811, 31), z_dir=(0.7071067811865476, -0.7071067811865476, 0)), keep=Keep.TOP, mode=Mode.PRIVATE)
    chamfer_12_piece_1 = split(chamfer_12_piece_1, bisect_by=Plane(origin=(29.94779985, 27.382357822, 31), z_dir=(-0.6293203910498405, -0.7771459614569685, 0)), keep=Keep.TOP, mode=Mode.PRIVATE)
    add(chamfer_12_piece_1, mode=Mode.SUBTRACT)
    with BuildSketch(Plane(origin=(-1.690866029, -11.688140707, 11), x_dir=(-0.10452846326765075, 0.9945218953682736, 0), z_dir=(0.9945218953682737, 0.10452846326765075, 0))) as chamfer_12_piece_2_section:
        Polygon((CHAMFER_12_SIZE, 0), (0, -CHAMFER_12_SIZE), (0, 0), align=None)
    chamfer_12_piece_2 = extrude(amount=76.24201623, mode=Mode.PRIVATE)
    chamfer_12_piece_2 = split(chamfer_12_piece_2, bisect_by=Plane(origin=(4.712500075, -18.091506811, 11), z_dir=(0.7071067811865476, -0.7071067811865476, 0)), keep=Keep.TOP, mode=Mode.PRIVATE)
    chamfer_12_piece_2 = split(chamfer_12_piece_2, bisect_by=Plane(origin=(29.94779985, 27.382357822, 11), z_dir=(-0.6293203910498405, -0.7771459614569685, 0)), keep=Keep.TOP, mode=Mode.PRIVATE)
    add(chamfer_12_piece_2, mode=Mode.SUBTRACT)

    # 草图14 → 切除-拉伸8 (cut)
    with BuildSketch(Plane(origin=(0, 4, 0), x_dir=(1, 0, 0), z_dir=(0, 1, 0))):
        with Locations((3, -13)):
            Circle(SKETCH_14_R)
        with Locations((3, -29)):
            Circle(SKETCH_14_R)
    extrude(amount=-CUT_EXTRUDE_8_DEPTH, mode=Mode.SUBTRACT)

    # 草图15 → 切除-拉伸9 (cut)
    with BuildSketch(Plane(origin=(0, 0, 0), x_dir=(-1, 0, 0), z_dir=(0, 0, -1))):
        Polygon((-7, 0.5), (16.731538073, 0.5), (16.731538073, -6.5), (-7, -6.5), (-7.5, -6.5), (-7.5, 0.5), align=None)
    extrude(amount=-CUT_EXTRUDE_9_DEPTH, mode=Mode.SUBTRACT)


solid = part.part
